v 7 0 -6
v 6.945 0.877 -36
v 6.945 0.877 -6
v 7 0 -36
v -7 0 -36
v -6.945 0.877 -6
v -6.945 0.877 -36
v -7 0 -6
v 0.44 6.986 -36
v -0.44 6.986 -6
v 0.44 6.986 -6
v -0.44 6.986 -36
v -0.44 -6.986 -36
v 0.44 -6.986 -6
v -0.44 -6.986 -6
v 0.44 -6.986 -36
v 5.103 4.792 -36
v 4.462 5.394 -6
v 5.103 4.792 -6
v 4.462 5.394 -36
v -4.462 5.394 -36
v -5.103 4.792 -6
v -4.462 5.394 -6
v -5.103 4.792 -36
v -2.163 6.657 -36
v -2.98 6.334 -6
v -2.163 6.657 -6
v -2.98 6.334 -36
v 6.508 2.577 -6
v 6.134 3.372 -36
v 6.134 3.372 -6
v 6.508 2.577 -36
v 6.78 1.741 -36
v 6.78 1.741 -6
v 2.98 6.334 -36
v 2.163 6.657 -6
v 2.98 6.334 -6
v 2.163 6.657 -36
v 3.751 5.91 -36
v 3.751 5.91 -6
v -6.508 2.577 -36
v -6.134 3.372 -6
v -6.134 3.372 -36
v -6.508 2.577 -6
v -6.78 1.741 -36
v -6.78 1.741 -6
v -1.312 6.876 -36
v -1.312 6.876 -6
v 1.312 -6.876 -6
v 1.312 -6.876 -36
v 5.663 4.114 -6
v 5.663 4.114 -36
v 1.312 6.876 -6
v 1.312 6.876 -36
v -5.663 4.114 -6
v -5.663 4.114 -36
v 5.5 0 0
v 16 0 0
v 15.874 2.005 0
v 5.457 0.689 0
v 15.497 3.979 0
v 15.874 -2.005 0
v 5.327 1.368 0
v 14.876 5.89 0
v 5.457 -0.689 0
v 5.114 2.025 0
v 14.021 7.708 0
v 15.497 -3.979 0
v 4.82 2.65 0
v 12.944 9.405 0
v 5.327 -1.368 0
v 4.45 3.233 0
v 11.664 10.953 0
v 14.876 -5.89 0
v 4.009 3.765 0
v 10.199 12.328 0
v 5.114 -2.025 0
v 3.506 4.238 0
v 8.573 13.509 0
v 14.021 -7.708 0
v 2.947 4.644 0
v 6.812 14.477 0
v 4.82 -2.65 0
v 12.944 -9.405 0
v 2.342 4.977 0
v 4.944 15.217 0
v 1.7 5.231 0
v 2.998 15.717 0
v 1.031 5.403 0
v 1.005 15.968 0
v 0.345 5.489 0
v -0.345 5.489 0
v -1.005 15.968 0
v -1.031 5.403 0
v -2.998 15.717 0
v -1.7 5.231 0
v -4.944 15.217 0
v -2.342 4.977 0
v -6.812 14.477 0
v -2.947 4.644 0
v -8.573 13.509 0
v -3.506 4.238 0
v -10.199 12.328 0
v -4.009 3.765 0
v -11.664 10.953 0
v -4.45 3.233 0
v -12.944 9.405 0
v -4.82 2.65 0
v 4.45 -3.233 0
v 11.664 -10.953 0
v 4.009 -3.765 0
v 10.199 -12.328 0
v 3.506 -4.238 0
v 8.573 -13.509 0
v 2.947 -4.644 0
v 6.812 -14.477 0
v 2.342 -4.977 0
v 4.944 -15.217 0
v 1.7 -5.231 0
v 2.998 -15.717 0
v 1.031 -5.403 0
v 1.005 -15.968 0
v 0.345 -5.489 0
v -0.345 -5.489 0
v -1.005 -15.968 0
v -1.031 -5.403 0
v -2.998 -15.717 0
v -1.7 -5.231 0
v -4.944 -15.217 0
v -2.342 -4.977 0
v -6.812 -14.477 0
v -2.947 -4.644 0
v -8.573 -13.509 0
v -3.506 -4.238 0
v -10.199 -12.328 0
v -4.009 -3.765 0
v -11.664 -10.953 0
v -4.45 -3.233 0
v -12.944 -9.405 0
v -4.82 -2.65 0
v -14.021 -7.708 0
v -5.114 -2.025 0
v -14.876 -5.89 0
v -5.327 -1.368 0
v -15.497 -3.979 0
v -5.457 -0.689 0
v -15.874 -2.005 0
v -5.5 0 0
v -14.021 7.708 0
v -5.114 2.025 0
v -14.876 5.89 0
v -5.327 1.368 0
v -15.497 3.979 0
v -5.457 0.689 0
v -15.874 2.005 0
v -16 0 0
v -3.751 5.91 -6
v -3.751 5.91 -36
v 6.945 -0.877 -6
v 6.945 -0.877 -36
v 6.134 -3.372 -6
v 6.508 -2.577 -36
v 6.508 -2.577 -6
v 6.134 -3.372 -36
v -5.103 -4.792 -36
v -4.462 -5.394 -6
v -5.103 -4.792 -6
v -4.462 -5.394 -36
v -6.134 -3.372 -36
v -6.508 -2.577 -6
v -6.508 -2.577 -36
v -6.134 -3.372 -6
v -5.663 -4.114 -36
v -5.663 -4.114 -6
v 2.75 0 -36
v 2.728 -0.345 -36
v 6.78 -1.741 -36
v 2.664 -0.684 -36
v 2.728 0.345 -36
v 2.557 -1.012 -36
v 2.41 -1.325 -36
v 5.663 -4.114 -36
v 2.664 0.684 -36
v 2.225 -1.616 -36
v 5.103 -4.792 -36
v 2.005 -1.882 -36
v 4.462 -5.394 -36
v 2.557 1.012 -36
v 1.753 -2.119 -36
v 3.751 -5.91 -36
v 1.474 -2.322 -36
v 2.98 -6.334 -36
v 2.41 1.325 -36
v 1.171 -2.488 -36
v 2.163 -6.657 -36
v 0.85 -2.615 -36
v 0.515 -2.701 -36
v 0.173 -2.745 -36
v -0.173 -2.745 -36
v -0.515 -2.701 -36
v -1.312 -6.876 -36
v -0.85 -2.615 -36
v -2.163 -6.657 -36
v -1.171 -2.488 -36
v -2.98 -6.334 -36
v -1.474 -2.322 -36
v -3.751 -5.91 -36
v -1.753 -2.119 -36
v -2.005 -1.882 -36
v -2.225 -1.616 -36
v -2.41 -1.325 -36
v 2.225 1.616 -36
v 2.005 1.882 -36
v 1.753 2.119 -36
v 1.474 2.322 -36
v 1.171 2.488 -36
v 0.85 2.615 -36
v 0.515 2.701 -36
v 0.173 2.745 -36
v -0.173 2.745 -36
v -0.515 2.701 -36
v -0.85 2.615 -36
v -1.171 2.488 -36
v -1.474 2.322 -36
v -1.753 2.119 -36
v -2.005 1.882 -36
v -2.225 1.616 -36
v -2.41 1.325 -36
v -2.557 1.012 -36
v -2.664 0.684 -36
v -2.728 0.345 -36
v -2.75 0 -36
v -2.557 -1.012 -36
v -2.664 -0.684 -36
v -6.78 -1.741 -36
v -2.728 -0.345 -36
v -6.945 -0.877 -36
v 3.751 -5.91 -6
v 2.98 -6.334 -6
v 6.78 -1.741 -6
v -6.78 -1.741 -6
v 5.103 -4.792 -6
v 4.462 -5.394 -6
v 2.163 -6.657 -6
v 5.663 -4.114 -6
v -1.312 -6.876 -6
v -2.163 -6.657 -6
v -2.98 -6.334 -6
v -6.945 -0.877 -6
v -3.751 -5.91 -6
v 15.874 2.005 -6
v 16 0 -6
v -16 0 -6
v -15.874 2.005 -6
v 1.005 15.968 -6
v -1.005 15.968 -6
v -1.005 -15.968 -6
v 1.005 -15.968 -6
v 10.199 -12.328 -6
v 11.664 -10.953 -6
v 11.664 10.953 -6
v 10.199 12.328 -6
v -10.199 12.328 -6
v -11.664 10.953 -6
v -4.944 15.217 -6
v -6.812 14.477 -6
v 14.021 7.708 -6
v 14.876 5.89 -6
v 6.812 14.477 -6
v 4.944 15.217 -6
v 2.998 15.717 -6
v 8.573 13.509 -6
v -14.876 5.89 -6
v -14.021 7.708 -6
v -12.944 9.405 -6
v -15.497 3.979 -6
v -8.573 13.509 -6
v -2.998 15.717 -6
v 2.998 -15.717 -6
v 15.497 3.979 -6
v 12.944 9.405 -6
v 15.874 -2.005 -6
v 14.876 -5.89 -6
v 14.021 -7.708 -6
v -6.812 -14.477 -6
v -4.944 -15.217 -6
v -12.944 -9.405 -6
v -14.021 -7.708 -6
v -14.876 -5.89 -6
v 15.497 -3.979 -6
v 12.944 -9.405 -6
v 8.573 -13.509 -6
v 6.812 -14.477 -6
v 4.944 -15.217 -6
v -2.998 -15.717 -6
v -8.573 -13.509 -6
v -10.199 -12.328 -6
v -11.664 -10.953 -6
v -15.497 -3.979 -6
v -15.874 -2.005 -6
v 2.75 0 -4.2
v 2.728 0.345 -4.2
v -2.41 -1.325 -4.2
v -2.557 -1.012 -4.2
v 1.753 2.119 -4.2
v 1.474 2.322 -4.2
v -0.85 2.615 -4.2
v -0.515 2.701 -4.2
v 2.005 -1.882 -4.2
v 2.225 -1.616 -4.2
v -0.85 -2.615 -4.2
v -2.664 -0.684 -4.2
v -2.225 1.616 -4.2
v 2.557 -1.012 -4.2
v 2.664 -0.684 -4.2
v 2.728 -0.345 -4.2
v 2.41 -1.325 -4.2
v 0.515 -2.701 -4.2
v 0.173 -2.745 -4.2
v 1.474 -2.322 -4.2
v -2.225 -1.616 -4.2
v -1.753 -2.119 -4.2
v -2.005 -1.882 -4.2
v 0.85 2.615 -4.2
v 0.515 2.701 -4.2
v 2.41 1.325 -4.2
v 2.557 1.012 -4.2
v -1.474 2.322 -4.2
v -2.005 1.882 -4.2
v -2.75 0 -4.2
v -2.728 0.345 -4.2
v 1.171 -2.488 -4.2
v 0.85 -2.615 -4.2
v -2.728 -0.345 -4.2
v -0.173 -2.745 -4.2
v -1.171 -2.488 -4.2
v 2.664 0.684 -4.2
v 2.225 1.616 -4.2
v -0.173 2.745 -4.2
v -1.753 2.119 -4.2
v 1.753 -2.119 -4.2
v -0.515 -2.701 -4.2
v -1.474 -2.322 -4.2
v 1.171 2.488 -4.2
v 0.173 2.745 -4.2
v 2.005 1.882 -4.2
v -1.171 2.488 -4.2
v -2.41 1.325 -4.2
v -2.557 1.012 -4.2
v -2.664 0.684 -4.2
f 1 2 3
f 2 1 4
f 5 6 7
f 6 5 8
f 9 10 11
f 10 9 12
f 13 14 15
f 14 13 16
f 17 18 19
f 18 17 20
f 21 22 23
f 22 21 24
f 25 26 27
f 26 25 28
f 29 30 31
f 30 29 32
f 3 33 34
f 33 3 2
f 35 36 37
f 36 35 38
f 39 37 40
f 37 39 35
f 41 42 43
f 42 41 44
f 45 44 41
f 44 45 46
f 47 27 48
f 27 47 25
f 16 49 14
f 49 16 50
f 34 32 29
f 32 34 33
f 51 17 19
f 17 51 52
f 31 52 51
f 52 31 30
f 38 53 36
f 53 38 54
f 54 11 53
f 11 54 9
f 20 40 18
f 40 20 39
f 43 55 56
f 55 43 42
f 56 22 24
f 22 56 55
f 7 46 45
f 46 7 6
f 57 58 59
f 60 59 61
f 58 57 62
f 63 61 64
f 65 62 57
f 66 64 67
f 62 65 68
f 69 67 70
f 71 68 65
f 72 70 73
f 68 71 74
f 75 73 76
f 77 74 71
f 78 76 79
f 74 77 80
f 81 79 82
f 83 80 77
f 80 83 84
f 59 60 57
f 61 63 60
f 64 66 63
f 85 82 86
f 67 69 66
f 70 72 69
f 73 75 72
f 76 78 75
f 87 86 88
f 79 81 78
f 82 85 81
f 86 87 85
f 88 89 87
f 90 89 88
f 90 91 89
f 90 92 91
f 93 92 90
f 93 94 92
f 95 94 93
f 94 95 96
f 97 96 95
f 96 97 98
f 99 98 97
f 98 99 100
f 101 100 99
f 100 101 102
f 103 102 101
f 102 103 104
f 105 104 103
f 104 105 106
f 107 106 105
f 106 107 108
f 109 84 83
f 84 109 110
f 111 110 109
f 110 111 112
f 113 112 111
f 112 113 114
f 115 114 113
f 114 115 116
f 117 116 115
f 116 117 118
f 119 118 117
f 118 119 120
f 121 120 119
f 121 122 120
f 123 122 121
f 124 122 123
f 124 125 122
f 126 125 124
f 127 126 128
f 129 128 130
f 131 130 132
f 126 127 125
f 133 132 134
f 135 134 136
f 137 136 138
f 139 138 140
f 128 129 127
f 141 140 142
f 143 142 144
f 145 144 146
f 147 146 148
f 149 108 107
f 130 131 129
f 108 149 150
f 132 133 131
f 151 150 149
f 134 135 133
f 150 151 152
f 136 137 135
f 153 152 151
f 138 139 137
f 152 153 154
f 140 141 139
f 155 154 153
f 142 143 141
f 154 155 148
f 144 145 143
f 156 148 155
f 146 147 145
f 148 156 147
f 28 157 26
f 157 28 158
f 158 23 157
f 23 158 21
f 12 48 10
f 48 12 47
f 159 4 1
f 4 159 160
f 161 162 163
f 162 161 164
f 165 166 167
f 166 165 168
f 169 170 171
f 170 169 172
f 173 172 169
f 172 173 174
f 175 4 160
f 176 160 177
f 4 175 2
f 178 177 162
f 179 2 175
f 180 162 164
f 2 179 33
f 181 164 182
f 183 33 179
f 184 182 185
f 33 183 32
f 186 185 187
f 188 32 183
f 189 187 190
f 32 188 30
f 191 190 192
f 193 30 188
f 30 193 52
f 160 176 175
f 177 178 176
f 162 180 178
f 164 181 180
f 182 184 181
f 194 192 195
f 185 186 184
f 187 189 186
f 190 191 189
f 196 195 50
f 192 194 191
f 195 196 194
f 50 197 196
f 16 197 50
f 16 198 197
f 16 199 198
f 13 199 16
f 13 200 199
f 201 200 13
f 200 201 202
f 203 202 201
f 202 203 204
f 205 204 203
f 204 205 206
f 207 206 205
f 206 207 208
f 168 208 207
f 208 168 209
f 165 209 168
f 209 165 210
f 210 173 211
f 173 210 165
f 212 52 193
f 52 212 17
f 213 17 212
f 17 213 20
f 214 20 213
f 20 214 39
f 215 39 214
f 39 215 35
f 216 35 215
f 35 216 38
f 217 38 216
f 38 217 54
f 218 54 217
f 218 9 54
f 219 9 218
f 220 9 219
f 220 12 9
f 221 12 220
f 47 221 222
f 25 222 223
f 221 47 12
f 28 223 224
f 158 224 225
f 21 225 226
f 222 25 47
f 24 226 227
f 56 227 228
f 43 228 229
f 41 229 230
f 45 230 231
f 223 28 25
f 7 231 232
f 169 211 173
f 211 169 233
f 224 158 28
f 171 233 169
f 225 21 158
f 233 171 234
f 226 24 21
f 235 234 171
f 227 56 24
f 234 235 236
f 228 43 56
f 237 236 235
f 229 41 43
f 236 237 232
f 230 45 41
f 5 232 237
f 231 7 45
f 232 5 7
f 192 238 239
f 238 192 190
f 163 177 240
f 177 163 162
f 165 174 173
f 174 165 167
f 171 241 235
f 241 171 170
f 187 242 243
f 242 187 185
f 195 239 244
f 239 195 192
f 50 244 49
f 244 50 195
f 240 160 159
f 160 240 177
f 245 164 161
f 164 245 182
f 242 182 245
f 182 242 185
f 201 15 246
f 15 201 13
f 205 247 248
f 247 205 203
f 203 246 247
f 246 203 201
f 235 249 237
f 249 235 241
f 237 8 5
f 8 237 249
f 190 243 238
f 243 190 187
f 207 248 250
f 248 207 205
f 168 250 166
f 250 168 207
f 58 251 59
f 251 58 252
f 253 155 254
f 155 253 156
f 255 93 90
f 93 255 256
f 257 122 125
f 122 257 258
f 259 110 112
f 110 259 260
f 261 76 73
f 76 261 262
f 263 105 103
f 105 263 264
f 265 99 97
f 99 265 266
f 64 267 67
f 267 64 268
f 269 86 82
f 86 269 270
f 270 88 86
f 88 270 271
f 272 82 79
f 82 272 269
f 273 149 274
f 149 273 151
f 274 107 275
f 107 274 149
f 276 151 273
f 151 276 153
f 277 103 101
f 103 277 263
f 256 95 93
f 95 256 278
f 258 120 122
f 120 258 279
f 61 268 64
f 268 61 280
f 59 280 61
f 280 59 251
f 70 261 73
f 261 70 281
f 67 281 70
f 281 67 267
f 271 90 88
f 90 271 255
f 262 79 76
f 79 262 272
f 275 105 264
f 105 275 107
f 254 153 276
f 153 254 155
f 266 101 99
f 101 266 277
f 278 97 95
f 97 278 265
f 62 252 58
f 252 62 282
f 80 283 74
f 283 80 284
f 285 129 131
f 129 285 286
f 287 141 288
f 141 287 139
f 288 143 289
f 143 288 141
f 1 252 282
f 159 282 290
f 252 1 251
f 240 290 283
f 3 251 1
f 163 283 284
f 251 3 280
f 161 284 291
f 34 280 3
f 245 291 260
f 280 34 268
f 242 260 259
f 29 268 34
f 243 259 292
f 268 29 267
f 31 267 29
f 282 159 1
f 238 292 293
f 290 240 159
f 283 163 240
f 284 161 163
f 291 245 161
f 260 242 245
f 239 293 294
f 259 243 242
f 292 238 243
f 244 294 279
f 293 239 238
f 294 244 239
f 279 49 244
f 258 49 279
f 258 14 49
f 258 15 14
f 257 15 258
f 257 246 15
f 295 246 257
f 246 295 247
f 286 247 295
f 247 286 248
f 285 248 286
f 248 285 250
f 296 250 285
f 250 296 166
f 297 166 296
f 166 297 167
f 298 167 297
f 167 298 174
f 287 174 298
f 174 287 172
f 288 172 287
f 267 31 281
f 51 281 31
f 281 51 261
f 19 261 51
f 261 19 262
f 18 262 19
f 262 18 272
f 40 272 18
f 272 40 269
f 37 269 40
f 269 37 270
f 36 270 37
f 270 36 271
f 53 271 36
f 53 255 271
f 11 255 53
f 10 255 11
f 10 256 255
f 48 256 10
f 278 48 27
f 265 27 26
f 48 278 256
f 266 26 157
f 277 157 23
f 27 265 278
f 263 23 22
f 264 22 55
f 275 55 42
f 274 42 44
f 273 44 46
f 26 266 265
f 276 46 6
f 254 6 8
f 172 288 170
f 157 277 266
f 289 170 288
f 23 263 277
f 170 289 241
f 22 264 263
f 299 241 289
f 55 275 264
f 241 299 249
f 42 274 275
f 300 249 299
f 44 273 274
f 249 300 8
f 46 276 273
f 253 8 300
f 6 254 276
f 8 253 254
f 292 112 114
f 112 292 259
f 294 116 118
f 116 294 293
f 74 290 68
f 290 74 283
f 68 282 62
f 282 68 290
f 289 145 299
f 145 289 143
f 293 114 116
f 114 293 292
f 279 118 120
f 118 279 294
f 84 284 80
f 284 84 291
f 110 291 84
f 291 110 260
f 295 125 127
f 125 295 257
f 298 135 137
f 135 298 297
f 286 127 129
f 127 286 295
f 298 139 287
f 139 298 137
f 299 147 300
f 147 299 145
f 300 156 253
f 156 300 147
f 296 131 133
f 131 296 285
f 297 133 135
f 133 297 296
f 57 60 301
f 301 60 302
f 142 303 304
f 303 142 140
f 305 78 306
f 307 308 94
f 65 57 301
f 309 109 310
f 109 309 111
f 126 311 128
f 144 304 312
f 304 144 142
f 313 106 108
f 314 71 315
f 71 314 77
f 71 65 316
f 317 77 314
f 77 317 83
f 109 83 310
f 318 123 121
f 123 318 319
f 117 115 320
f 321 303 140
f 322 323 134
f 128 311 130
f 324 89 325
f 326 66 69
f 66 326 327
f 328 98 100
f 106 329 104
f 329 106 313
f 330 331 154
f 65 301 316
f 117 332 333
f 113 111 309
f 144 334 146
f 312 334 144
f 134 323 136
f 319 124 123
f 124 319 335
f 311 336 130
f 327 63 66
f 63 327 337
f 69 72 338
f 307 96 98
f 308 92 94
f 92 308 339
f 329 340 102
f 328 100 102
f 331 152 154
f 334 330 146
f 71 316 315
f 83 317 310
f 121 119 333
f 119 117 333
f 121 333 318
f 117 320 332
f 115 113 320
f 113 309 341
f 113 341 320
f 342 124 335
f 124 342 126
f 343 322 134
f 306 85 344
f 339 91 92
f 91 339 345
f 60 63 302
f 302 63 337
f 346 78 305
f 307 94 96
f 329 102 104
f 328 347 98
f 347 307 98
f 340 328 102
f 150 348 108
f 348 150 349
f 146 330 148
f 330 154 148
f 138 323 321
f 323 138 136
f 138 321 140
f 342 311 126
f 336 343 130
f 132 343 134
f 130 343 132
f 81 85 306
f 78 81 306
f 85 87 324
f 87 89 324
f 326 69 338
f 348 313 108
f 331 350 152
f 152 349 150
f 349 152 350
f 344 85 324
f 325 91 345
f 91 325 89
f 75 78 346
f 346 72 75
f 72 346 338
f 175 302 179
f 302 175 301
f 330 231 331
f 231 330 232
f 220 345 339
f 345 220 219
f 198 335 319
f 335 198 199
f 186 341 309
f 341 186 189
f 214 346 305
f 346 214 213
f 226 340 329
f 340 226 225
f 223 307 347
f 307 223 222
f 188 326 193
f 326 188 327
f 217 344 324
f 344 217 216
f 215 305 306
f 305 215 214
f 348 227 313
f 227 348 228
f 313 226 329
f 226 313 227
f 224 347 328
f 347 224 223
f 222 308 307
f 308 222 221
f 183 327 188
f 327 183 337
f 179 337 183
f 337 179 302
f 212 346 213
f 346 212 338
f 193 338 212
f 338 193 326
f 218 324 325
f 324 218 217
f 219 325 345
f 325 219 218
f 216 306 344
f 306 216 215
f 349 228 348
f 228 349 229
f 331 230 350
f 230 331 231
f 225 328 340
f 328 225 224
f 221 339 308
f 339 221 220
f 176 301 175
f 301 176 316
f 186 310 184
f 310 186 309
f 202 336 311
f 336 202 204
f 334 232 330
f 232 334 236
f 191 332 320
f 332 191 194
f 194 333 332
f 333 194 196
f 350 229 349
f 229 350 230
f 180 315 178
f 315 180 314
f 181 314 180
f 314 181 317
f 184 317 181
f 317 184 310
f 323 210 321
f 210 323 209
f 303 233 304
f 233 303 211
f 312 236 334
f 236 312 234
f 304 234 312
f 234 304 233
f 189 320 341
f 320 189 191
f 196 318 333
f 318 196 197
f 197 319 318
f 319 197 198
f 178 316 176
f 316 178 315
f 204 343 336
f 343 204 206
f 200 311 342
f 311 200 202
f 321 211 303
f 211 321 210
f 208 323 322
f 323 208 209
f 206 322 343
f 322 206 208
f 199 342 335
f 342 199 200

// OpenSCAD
$fn = 50;


difference() {
	union() {
		translate(v = [0, 0, -36.0000000000]) {
			cylinder(h = 36, r = 7.0000000000);
		}
		translate(v = [0, 0, -6.0000000000]) {
			cylinder(h = 6, r = 16.0000000000);
		}
	}
	union() {
		translate(v = [0, 0, 0]) {
			rotate(a = [0, 0, 0]) {
				difference() {
					union() {
						#translate(v = [0, 0, -36.0000000000]) {
							cylinder(h = 36, r = 2.2500000000);
						}
						#translate(v = [0, 0, -4.2000000000]) {
							cylinder(h = 4.2000000000, r = 7.0000000000, r1 = 2.7500000000, r2 = 5.5000000000);
						}
						#translate(v = [0, 0, -36.0000000000]) {
							cylinder(h = 36, r = 2.7500000000);
						}
						#translate(v = [0, 0, -36.0000000000]) {
							cylinder(h = 36, r = 2.2500000000);
						}
					}
					union();
				}
			}
		}
	}
}
